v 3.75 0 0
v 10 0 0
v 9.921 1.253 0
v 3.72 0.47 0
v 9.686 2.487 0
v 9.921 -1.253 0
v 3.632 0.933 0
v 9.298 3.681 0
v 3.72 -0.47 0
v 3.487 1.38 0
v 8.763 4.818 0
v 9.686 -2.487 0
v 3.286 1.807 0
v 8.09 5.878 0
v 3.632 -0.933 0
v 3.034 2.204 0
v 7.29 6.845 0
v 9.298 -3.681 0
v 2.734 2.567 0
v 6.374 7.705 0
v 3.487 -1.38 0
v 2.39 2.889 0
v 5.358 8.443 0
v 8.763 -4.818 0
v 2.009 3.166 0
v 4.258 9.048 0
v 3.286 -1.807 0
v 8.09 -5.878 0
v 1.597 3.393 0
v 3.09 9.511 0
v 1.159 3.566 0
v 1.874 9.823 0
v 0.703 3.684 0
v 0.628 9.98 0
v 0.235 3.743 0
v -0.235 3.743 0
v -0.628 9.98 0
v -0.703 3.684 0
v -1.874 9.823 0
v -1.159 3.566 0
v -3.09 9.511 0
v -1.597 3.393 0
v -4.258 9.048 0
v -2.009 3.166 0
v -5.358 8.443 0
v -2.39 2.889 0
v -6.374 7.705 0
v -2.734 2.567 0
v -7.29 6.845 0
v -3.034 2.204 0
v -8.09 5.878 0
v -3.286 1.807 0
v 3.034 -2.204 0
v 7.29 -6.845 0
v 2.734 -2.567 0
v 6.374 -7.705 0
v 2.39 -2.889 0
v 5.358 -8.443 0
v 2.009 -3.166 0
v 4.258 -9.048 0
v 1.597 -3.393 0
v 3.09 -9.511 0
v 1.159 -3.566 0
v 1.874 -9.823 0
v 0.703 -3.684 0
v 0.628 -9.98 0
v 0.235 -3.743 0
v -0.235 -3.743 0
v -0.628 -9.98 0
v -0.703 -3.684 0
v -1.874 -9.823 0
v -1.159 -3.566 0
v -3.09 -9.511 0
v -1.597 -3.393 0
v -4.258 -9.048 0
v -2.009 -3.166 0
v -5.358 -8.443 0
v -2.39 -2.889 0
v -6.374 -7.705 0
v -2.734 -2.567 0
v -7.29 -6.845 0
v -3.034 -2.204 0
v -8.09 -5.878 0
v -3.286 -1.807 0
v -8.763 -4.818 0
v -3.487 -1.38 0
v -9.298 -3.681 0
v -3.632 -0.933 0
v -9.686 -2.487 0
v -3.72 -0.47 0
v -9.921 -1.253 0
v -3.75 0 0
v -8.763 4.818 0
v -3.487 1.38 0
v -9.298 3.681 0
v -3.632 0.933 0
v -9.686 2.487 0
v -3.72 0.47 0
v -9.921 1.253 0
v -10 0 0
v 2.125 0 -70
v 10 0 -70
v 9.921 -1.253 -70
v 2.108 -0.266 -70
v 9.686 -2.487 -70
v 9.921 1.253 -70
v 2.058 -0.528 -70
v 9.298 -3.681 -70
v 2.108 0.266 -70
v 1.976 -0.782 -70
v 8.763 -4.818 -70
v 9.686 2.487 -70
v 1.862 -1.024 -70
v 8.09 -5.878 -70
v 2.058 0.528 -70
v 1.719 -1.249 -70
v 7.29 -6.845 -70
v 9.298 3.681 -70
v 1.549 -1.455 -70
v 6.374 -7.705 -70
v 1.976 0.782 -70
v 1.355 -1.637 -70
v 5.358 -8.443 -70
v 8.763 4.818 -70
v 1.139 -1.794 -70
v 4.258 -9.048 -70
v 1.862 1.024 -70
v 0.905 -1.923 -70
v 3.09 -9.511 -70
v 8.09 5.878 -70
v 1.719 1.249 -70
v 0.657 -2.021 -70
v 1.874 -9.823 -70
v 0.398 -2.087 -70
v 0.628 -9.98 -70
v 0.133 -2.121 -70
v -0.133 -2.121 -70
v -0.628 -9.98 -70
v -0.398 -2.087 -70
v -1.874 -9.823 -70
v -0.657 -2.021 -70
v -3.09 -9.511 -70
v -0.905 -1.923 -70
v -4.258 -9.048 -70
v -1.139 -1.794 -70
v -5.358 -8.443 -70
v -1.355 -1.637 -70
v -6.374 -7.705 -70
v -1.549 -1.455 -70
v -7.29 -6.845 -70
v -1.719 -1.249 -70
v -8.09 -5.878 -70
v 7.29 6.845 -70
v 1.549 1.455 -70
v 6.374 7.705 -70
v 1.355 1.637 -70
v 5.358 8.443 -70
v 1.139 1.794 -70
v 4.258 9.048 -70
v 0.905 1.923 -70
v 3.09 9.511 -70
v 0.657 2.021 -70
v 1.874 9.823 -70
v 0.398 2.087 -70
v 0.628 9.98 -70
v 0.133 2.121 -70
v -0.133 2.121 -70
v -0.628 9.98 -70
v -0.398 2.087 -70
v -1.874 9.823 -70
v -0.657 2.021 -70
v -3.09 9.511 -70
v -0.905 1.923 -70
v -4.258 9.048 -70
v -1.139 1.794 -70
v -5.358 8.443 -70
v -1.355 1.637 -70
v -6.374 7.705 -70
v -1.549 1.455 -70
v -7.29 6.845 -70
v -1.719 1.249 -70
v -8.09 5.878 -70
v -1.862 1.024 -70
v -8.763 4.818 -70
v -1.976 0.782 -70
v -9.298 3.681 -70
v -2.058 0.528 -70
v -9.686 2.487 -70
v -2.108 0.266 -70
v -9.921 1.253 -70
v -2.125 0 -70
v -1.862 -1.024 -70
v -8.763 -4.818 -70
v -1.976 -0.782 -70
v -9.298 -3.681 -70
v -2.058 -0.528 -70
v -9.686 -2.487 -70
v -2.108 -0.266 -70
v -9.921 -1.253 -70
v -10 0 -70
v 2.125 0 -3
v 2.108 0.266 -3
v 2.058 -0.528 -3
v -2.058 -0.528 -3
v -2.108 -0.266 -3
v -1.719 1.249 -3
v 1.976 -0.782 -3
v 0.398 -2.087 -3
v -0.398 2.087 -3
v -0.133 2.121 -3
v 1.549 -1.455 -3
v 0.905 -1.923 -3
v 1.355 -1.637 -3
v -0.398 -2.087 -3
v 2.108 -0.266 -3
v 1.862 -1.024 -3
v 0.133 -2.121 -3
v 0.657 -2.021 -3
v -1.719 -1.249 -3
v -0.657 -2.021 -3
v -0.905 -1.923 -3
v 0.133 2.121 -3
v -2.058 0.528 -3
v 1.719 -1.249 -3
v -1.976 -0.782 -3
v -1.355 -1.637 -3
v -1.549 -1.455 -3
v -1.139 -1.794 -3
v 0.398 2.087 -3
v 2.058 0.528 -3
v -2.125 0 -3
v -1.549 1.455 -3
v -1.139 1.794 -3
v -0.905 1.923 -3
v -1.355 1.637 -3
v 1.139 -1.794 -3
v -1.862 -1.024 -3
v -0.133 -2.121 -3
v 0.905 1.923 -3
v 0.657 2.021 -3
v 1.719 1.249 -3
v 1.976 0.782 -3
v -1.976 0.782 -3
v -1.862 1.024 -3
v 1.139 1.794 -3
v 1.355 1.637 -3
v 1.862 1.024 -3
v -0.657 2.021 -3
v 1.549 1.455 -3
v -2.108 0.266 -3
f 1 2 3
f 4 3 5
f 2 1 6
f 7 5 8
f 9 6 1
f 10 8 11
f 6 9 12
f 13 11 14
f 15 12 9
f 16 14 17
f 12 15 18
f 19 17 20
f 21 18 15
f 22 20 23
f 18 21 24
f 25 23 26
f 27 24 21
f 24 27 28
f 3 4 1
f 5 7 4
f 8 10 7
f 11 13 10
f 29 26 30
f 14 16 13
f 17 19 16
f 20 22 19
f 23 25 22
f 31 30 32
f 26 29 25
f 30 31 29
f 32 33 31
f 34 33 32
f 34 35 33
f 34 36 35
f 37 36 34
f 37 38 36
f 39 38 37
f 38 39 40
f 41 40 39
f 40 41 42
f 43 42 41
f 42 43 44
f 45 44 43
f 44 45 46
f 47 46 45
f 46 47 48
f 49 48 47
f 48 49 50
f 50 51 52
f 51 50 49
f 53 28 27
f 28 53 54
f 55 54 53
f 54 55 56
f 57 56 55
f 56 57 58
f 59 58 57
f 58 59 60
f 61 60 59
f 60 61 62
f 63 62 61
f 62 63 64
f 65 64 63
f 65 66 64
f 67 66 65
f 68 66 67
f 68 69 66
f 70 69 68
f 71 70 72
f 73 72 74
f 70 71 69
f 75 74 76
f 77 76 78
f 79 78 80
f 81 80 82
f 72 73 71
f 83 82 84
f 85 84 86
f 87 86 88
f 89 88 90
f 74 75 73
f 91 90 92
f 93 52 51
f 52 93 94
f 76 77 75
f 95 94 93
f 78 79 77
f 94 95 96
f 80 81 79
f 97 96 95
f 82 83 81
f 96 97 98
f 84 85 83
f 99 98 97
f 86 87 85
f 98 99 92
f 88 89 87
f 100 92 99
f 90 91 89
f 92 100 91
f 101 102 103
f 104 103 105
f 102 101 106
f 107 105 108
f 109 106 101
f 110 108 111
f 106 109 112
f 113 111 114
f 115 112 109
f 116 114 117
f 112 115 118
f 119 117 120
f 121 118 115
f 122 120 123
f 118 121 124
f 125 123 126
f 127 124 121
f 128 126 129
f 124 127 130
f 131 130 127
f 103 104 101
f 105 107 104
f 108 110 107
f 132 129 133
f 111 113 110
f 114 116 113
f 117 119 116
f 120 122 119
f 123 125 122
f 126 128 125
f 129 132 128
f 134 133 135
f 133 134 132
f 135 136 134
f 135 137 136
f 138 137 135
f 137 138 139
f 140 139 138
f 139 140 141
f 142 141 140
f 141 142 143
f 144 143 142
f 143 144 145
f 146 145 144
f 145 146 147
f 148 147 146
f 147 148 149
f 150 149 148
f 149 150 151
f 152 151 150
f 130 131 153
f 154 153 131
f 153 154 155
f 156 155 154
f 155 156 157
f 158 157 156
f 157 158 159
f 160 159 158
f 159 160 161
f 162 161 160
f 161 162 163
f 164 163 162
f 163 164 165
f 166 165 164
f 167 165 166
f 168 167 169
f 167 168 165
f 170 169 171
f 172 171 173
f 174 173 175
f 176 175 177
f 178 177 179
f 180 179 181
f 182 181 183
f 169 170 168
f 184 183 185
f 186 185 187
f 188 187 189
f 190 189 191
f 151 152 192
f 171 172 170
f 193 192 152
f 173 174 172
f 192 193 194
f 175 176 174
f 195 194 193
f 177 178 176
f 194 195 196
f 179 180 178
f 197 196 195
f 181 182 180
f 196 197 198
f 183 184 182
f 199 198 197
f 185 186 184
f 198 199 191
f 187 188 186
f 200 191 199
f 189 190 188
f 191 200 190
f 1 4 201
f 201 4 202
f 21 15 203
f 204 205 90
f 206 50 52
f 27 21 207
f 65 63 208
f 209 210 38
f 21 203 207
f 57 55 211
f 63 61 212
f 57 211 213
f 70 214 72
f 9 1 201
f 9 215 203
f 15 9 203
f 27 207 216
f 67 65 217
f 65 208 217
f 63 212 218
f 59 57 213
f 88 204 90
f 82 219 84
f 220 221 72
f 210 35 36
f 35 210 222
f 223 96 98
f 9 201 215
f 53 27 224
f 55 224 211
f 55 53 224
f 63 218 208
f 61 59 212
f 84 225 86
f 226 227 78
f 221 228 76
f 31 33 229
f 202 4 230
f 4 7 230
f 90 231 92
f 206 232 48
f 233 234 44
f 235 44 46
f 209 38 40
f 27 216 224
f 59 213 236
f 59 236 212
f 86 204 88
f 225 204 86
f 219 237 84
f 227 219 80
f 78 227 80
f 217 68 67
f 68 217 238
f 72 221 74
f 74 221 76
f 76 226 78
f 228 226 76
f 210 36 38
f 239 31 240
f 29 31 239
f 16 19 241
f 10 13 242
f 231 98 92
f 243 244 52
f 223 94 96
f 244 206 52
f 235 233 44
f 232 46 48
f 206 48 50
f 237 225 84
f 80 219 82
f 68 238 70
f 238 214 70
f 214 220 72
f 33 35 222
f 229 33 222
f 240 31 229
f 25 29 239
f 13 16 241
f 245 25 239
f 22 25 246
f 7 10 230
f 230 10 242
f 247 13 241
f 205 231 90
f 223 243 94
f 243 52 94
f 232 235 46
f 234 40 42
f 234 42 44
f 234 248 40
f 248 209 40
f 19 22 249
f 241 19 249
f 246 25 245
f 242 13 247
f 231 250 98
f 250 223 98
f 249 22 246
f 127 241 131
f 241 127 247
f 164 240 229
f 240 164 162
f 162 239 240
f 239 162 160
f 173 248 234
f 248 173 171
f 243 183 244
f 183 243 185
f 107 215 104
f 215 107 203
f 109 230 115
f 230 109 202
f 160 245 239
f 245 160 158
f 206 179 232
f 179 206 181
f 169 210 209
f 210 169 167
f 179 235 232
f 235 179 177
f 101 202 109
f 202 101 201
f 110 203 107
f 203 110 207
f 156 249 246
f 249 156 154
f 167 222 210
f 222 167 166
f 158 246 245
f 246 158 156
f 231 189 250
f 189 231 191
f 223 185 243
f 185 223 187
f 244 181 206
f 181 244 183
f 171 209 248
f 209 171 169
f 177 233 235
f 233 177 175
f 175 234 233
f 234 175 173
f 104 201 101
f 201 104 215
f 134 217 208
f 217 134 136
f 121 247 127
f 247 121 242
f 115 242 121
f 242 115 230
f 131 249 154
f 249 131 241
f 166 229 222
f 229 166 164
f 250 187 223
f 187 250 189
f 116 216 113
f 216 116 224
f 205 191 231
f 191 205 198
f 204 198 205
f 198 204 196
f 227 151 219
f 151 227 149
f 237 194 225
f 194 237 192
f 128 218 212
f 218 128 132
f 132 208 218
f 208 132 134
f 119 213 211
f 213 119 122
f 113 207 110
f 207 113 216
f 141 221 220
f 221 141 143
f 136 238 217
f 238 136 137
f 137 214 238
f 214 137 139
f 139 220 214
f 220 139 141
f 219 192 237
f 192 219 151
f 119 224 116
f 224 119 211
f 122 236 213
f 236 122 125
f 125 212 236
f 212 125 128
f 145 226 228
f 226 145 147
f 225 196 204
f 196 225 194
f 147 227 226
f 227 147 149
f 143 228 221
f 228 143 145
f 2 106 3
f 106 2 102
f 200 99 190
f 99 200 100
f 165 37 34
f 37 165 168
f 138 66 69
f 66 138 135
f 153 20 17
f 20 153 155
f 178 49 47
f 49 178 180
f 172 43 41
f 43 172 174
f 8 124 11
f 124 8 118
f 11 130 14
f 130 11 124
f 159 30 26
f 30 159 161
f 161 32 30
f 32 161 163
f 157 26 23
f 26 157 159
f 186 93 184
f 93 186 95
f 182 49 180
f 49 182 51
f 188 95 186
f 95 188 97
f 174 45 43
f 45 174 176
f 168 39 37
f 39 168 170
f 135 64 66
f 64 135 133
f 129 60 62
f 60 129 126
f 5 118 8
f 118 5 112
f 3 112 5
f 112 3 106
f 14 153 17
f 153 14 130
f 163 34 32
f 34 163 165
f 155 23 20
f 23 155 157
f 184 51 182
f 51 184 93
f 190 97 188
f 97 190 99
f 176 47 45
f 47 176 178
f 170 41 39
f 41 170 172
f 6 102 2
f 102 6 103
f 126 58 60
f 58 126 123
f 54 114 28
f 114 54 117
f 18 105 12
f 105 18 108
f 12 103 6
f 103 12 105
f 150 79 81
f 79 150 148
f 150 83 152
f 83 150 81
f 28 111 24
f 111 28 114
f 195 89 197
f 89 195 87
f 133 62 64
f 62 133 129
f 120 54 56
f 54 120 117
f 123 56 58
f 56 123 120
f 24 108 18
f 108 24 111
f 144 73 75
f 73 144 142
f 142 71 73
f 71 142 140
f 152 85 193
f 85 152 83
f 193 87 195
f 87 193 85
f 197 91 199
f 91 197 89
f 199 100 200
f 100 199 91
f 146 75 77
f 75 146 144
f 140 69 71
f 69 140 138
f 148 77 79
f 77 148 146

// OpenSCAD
$fn = 50;


difference() {
	union() {
		translate(v = [0, 0, -70.0000000000]) {
			cylinder(h = 70, r = 10.0000000000);
		}
		cylinder(h = 0, r = 20.0000000000);
	}
	union() {
		translate(v = [0, 0, 0]) {
			rotate(a = [0, 0, 0]) {
				difference() {
					union() {
						#translate(v = [0, 0, -70.0000000000]) {
							cylinder(h = 70, r = 2.0000000000);
						}
						#translate(v = [0, 0, -3]) {
							cylinder(h = 3, r = 10.0000000000, r1 = 2.1250000000, r2 = 3.7500000000);
						}
						#translate(v = [0, 0, -70.0000000000]) {
							cylinder(h = 70, r = 2.1250000000);
						}
						#translate(v = [0, 0, -70.0000000000]) {
							cylinder(h = 70, r = 2.0000000000);
						}
					}
					union();
				}
			}
		}
	}
}
